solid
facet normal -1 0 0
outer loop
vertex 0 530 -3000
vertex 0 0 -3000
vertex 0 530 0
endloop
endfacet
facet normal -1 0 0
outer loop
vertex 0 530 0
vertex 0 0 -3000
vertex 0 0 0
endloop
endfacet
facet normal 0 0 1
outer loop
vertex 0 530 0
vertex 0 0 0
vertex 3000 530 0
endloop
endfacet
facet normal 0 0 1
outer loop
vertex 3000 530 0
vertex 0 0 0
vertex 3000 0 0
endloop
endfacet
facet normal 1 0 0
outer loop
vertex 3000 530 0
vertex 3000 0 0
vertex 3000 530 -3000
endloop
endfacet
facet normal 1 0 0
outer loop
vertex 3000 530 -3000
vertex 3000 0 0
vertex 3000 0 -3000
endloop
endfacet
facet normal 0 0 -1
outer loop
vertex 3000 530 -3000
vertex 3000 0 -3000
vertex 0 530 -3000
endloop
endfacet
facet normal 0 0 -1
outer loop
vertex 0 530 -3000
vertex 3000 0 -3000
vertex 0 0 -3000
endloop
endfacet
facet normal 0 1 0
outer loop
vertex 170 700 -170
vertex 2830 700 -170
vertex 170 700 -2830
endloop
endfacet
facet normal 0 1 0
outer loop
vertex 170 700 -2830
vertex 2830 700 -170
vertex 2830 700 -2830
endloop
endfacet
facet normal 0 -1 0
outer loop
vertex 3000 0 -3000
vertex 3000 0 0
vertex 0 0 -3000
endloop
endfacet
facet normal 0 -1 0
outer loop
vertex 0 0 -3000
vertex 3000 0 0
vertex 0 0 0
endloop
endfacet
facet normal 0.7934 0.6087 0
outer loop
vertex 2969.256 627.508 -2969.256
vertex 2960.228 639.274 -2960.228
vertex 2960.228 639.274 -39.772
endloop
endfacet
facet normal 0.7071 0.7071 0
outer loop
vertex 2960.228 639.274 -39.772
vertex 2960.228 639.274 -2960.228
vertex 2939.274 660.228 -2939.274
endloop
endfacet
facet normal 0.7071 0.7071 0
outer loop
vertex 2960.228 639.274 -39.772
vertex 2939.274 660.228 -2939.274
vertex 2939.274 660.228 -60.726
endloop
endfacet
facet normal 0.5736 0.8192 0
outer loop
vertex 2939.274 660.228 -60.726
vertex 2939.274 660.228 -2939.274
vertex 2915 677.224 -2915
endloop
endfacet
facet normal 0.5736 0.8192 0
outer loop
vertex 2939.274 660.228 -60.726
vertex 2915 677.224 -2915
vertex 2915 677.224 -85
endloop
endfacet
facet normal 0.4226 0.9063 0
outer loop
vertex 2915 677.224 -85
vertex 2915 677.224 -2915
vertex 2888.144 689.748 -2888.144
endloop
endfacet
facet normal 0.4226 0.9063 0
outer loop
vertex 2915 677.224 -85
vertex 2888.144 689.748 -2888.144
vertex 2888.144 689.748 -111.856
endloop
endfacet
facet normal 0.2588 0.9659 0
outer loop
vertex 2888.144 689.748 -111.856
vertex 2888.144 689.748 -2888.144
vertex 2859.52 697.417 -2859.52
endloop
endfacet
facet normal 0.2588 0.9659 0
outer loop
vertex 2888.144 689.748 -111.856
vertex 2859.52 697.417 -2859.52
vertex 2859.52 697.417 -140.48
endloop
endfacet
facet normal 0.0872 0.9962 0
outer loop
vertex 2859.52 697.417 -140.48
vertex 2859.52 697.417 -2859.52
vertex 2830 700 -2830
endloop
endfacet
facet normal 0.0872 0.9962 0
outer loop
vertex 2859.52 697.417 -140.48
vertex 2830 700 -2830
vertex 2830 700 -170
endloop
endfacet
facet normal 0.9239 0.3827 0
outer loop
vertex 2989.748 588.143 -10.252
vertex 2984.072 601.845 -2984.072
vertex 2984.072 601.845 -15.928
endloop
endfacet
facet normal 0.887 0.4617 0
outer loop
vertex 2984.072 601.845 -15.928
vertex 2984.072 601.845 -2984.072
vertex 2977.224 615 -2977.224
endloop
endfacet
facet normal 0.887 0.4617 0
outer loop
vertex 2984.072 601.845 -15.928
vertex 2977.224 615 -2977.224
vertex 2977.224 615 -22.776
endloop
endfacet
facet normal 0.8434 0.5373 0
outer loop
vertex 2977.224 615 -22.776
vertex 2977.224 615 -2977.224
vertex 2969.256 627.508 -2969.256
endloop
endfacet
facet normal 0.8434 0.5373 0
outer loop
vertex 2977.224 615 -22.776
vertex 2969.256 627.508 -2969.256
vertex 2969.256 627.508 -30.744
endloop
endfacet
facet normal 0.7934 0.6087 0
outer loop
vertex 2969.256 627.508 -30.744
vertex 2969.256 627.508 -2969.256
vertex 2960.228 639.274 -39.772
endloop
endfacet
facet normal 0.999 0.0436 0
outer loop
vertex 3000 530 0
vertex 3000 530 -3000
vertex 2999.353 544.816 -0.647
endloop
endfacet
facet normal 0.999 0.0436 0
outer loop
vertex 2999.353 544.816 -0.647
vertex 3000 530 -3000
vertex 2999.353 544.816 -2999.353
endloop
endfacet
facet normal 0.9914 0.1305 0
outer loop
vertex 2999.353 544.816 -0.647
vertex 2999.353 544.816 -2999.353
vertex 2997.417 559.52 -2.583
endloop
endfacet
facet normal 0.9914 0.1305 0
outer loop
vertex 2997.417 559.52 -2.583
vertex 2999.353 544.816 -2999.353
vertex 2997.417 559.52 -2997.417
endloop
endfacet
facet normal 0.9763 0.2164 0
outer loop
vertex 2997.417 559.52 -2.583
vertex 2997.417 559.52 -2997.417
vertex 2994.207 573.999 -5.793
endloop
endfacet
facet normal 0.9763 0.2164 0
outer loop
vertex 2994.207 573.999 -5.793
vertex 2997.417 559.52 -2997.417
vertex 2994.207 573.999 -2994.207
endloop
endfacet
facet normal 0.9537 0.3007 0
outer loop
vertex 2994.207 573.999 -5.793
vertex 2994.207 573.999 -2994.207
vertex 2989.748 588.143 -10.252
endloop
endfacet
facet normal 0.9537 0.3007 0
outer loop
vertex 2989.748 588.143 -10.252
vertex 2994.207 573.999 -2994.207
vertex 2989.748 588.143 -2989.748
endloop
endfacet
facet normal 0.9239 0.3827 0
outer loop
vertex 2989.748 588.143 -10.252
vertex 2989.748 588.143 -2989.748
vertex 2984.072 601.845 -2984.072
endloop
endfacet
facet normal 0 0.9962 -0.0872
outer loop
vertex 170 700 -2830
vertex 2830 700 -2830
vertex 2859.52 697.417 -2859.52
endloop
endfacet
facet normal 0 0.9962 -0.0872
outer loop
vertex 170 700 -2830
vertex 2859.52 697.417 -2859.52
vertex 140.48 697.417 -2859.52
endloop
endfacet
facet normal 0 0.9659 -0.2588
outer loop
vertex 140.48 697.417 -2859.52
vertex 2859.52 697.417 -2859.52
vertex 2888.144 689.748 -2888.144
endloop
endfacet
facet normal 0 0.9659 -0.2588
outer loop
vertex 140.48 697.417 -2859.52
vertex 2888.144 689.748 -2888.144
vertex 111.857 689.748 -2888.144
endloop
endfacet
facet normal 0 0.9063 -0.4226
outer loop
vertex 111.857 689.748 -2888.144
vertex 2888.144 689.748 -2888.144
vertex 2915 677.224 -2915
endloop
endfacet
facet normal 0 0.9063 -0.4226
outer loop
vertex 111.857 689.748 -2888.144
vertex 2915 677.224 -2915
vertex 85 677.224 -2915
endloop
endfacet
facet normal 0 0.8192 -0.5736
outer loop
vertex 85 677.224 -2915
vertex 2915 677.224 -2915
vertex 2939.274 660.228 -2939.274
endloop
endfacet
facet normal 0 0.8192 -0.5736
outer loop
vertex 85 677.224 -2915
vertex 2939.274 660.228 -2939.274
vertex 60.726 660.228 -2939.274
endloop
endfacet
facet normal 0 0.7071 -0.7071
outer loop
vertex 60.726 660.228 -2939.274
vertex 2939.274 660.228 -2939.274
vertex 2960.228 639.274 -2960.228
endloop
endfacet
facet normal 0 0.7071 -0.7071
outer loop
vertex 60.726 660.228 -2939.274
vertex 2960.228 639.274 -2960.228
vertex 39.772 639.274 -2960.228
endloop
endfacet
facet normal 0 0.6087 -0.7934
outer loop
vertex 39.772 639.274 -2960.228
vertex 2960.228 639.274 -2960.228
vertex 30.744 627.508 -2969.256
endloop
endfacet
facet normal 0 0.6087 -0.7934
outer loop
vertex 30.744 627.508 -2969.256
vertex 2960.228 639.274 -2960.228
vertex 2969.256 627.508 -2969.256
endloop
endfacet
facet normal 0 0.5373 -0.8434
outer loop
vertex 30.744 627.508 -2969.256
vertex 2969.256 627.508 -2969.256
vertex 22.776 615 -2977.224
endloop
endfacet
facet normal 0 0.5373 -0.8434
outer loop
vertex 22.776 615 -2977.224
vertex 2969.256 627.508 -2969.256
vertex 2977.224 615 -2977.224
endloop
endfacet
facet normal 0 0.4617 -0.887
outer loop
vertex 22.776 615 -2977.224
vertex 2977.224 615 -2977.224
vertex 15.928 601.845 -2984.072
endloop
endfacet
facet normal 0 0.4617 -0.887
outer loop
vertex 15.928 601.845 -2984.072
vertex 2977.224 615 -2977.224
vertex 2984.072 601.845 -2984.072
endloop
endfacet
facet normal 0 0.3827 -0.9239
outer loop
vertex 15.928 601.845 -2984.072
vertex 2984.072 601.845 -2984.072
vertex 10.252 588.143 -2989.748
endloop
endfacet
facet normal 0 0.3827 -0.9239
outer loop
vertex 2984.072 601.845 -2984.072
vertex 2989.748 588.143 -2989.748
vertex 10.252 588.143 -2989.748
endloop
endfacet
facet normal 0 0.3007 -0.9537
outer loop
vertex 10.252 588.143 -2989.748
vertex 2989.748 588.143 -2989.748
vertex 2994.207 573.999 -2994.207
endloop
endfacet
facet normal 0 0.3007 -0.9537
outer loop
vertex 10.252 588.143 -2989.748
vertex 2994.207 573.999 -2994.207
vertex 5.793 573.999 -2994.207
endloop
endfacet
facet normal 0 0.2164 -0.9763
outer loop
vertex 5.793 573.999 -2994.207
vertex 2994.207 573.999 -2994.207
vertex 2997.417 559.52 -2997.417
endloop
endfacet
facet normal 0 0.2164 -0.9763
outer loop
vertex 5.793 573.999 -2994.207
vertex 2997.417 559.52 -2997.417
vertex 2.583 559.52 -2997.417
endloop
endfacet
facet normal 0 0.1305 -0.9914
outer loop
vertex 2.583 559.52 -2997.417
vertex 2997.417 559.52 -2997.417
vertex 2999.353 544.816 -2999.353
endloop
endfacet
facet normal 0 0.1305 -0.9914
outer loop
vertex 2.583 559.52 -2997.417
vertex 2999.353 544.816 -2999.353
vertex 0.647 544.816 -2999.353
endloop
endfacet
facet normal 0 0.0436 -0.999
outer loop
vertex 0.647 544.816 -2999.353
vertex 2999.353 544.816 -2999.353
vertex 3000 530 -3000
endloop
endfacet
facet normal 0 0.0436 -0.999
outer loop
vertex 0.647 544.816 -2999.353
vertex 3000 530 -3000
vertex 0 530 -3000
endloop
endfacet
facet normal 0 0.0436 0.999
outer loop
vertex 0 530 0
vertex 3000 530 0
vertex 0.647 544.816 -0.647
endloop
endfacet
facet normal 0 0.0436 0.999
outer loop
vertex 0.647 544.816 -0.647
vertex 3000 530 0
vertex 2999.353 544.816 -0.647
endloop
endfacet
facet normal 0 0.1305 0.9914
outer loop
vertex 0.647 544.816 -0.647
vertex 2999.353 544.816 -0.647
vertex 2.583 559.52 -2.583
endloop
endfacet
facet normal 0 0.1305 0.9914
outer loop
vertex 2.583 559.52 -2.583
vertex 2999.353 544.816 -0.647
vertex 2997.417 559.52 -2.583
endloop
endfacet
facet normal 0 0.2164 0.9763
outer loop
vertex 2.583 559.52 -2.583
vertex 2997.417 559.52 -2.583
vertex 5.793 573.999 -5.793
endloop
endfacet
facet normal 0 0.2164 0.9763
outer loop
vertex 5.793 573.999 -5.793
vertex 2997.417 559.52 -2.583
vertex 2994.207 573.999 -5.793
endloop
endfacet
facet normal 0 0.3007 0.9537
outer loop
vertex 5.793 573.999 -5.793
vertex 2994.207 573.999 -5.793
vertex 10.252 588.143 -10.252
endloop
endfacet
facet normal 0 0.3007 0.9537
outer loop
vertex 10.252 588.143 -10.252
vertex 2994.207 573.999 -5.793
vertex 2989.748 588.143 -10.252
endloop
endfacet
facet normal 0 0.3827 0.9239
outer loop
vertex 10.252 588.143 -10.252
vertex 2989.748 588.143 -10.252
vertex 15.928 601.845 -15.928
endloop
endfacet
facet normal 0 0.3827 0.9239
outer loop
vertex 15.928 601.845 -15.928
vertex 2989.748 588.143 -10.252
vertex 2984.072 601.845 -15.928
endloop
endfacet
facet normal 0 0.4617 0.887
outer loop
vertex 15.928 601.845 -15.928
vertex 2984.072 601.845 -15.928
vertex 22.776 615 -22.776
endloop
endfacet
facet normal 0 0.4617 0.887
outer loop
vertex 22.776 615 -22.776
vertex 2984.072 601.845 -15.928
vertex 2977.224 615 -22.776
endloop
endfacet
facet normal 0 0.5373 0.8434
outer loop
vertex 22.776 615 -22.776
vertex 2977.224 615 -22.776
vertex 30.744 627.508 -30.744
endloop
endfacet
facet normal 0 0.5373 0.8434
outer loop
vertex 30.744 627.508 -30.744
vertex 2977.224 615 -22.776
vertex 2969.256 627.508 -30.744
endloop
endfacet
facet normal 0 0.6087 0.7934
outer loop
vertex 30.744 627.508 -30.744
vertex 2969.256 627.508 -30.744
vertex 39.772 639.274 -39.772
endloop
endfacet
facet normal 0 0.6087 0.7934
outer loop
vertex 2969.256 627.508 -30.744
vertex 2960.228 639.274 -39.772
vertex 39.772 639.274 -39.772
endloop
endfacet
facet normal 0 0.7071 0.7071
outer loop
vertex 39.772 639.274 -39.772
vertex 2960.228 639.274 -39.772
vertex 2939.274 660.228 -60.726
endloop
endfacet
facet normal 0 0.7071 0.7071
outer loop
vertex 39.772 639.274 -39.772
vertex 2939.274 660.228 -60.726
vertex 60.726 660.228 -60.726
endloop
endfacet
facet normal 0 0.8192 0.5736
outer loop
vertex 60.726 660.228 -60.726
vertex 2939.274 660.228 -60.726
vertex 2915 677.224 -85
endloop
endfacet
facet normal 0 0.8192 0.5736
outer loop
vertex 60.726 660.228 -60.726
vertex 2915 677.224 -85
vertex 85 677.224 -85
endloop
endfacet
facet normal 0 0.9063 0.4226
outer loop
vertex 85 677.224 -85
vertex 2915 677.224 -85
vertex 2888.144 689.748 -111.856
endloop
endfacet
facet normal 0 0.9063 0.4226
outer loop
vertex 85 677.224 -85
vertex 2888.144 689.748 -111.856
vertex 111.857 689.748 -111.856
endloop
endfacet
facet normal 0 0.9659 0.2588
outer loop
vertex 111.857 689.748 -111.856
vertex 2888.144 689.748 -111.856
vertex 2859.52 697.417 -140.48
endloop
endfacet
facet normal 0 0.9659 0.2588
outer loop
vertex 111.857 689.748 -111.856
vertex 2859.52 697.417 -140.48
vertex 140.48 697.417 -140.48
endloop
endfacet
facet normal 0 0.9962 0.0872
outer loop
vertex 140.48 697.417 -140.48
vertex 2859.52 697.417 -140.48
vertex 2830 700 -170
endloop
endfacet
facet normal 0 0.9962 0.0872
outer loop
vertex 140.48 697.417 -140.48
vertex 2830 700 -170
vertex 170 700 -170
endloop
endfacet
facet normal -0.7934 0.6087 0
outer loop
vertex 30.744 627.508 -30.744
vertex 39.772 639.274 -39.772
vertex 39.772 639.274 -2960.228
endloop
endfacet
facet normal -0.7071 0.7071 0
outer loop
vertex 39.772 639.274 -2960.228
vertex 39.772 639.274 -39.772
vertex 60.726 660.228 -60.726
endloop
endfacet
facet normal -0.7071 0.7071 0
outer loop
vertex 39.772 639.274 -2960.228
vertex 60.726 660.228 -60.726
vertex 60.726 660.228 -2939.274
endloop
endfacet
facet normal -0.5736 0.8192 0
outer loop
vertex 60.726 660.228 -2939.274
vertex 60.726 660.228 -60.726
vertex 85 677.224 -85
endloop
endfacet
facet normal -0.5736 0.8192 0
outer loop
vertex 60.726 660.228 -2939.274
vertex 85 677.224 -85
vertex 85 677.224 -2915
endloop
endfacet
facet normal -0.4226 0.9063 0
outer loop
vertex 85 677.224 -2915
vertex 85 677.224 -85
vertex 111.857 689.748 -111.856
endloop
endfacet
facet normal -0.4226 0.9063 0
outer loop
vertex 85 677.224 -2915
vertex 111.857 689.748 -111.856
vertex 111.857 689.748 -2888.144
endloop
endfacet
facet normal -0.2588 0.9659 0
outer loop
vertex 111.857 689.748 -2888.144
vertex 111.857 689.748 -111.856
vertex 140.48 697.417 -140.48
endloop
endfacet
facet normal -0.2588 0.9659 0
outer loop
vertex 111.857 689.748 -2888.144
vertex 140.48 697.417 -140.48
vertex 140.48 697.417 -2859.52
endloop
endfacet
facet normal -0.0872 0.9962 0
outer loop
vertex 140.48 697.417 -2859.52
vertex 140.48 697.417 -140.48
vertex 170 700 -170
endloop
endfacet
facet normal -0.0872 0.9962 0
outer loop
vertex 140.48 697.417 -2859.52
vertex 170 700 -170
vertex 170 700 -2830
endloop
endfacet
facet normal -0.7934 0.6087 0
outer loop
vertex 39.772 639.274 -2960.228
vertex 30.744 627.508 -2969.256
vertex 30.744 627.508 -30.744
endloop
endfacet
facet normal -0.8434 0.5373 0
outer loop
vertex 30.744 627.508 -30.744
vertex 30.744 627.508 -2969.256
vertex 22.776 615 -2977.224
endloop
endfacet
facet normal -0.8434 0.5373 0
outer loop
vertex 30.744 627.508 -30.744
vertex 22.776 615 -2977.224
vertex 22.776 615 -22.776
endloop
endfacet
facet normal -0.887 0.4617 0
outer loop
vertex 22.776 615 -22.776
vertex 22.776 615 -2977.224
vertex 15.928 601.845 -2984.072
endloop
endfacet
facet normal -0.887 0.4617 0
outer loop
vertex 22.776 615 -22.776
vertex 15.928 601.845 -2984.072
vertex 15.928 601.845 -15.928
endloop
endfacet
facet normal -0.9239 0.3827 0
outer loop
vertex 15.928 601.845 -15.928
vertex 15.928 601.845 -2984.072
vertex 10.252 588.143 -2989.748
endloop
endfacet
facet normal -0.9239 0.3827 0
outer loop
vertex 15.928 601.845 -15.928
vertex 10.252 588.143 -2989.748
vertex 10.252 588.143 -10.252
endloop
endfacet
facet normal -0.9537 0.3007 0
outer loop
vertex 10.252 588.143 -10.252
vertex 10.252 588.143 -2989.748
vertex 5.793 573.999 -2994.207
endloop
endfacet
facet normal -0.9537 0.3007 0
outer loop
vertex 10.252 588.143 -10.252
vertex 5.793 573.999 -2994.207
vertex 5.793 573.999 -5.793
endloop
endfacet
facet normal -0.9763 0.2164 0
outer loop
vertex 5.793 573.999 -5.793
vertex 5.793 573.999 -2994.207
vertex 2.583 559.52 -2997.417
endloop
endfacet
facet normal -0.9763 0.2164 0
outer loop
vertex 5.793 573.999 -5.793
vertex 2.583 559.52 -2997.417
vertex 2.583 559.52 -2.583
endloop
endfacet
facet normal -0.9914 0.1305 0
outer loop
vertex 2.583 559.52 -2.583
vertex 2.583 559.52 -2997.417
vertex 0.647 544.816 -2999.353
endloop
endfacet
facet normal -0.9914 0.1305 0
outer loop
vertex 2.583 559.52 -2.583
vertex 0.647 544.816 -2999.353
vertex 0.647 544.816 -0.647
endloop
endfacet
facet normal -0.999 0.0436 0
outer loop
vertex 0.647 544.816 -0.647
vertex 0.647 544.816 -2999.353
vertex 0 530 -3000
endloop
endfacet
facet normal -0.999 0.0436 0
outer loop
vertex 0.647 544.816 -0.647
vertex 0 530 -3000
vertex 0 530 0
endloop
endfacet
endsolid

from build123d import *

# Parameters (mm, degrees)
CROQUIS1_W              = 3000
CROQUIS1_H              = 3000
SALIENTE_EXTRUIR1_DEPTH = 700
REDONDEO1_R             = 170


with BuildPart() as part:
    # Croquis1 → Saliente-Extruir1 (new body)
    with BuildSketch(Plane(origin=(0, 0, 0), x_dir=(1, 0, 0), z_dir=(0, 1, 0))):
        with Locations((1500, 1500)):
            Rectangle(CROQUIS1_W, CROQUIS1_H)
    extrude(amount=SALIENTE_EXTRUIR1_DEPTH)

    # Redondeo1
    redondeo1_edges = [part.edges().sort_by_distance(p)[0] for p in [
        (3000, 700, -1500),
        (1500, 700, -3000),
        (0, 700, -1500),
        (1500, 700, 0),
    ]]
    fillet(redondeo1_edges, radius=REDONDEO1_R)


solid = part.part
